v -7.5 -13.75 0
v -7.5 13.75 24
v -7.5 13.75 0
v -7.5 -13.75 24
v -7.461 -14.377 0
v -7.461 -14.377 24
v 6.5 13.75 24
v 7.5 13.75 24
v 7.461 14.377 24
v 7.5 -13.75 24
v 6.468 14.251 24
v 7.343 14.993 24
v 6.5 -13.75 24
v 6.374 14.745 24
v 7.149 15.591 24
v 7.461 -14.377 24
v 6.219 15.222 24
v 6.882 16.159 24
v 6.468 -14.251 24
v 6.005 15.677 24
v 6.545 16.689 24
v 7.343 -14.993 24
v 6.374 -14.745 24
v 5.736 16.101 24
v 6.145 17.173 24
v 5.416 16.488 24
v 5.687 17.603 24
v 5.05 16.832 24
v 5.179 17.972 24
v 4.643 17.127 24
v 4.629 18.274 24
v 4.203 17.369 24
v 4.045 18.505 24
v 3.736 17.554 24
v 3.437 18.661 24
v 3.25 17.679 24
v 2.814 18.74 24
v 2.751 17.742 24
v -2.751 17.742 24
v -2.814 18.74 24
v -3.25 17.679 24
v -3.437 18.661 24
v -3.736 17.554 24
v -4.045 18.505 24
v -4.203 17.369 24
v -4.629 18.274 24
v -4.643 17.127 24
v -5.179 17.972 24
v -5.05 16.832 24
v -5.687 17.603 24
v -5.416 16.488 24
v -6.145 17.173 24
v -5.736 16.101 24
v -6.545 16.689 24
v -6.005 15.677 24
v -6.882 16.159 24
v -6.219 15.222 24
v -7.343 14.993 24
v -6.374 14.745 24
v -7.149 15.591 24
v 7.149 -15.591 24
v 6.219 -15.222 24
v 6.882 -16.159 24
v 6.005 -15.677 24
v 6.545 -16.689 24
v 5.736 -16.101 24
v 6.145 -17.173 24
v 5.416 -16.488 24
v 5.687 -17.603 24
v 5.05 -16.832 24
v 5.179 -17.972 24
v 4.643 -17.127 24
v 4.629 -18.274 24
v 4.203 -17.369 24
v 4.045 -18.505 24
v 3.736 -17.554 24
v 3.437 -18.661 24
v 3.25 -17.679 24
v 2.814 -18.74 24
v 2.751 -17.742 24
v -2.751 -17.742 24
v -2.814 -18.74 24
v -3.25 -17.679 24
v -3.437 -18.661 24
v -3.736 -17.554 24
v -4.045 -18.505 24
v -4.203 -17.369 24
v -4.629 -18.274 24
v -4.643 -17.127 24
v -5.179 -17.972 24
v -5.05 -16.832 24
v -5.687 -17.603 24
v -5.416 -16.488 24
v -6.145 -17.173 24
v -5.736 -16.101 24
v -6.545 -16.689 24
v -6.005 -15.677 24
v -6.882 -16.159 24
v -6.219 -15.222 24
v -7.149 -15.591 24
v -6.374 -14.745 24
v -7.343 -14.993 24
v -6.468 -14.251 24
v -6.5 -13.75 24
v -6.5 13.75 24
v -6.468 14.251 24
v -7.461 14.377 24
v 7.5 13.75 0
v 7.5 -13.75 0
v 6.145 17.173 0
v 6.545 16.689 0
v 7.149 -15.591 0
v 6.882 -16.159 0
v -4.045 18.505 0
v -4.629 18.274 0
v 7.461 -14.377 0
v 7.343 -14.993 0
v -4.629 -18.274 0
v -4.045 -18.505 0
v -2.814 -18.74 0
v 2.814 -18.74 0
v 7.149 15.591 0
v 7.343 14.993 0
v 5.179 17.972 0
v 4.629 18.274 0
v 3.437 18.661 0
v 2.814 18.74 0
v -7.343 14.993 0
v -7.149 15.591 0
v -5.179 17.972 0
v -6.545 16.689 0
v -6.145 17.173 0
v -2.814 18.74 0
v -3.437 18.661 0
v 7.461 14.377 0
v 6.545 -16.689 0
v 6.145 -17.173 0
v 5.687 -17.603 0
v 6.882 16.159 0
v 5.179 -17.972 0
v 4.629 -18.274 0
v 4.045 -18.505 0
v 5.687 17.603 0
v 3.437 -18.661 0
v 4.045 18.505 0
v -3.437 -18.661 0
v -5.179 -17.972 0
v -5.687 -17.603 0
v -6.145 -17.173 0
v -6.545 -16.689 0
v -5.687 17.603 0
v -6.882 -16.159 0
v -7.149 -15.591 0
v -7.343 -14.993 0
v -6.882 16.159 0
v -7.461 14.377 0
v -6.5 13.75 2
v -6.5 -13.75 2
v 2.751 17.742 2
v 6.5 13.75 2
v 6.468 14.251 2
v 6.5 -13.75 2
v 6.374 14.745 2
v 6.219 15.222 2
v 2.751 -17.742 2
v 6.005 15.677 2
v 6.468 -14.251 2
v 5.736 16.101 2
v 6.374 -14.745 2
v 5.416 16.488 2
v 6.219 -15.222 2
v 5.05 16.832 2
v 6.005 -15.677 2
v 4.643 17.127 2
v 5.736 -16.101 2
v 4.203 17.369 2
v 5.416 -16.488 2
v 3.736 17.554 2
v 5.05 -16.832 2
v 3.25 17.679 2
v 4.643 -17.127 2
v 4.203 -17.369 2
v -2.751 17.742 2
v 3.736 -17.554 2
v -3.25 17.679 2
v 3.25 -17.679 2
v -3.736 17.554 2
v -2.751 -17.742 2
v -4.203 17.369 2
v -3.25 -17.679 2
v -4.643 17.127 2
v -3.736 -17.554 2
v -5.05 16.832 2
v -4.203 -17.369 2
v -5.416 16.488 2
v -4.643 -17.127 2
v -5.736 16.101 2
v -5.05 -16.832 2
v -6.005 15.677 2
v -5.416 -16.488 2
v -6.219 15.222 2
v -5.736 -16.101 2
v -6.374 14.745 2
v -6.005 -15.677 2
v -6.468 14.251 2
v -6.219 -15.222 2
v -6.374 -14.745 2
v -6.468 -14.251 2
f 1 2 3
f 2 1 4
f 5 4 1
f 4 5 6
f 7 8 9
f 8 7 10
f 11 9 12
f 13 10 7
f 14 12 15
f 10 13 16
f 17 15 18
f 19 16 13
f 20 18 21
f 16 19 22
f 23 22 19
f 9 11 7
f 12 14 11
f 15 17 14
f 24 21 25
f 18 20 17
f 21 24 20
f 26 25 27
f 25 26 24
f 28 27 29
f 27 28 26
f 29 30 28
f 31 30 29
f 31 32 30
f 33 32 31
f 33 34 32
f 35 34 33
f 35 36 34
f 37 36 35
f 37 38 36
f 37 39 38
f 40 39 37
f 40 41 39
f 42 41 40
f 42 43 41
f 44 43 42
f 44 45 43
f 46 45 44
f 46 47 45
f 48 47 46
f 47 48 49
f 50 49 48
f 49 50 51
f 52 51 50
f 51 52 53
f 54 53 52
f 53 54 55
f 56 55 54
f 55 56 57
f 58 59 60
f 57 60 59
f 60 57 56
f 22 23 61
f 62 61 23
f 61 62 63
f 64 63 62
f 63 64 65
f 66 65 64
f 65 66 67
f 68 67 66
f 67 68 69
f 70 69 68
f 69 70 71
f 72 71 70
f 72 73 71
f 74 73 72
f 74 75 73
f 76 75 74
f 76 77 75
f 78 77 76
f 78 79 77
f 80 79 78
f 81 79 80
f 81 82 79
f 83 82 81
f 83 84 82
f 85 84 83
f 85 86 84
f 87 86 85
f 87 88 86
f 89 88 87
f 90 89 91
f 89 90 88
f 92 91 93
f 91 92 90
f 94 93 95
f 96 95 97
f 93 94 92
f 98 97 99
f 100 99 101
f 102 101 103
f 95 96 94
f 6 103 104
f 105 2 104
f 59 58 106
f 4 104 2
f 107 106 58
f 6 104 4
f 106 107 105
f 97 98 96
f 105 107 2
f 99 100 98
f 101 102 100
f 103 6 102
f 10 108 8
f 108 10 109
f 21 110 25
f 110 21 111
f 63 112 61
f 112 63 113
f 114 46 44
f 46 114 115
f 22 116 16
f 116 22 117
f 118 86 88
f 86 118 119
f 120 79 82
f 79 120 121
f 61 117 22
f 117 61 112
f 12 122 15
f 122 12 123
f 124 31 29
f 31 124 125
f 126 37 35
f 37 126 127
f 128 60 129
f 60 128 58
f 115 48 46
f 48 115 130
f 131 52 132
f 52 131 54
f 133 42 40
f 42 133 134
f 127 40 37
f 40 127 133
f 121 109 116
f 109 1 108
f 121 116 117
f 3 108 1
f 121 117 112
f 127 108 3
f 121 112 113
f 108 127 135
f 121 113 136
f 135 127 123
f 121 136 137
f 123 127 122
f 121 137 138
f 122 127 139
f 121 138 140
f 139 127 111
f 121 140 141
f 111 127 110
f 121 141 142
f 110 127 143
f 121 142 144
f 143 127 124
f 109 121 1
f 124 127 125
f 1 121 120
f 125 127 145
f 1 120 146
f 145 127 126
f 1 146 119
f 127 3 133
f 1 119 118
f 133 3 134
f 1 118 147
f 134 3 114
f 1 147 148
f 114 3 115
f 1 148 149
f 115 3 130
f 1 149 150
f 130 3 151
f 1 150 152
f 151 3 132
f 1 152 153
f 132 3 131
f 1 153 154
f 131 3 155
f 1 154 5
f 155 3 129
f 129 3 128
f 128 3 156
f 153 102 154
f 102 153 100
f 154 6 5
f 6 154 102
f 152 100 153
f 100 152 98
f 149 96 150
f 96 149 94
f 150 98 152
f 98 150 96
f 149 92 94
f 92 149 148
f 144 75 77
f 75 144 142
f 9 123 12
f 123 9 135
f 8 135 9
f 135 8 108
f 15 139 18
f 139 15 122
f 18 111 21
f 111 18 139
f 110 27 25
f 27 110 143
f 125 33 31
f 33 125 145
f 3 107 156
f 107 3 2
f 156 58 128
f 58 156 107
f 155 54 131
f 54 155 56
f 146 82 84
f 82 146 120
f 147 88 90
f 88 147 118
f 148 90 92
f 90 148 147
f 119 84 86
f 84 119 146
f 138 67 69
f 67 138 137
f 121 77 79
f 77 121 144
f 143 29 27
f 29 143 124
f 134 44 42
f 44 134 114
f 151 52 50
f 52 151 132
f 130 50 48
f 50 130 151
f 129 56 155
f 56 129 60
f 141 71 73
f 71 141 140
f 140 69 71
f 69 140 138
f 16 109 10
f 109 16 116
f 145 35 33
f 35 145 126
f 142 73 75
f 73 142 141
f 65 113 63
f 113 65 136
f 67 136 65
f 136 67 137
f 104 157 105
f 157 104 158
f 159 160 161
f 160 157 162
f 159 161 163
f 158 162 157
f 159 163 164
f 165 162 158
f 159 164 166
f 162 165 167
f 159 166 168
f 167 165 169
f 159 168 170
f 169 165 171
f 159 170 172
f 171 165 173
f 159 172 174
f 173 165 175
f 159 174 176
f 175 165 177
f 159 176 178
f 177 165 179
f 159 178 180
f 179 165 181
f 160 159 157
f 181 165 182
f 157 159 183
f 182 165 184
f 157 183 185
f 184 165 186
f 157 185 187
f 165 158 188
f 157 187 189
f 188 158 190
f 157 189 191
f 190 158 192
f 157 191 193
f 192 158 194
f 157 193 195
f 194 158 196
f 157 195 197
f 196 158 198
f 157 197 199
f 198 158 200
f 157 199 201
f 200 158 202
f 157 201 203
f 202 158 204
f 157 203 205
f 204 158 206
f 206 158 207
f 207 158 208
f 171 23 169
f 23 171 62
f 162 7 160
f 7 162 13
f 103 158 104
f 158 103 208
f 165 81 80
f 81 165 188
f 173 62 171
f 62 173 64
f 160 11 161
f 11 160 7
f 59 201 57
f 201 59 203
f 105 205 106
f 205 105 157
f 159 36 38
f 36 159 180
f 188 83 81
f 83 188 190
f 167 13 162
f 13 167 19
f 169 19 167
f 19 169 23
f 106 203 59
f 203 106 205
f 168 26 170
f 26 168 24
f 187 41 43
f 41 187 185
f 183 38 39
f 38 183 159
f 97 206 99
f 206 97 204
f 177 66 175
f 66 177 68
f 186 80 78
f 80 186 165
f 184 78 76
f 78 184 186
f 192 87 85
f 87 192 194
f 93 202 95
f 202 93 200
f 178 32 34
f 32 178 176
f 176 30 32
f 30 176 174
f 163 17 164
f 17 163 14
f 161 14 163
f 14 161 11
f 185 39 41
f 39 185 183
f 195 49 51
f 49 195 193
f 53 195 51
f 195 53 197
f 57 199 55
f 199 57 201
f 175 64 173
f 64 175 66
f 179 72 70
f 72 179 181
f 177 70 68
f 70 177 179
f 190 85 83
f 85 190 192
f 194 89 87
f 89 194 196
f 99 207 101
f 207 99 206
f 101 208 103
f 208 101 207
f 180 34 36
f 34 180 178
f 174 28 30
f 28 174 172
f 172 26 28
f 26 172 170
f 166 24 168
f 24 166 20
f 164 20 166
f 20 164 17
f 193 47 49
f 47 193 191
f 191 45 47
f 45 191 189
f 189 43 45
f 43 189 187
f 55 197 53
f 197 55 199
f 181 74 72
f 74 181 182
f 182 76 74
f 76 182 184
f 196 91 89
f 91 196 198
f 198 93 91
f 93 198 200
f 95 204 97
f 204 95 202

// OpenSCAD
$fn = 50;


difference() {
	union() {
		hull() {
			translate(v = [-2.5000000000, 13.7500000000, 0]) {
				cylinder(h = 24, r = 5);
			}
			translate(v = [2.5000000000, 13.7500000000, 0]) {
				cylinder(h = 24, r = 5);
			}
			translate(v = [-2.5000000000, -13.7500000000, 0]) {
				cylinder(h = 24, r = 5);
			}
			translate(v = [2.5000000000, -13.7500000000, 0]) {
				cylinder(h = 24, r = 5);
			}
		}
	}
	union() {
		translate(v = [0, 0, 2]) {
			hull() {
				translate(v = [-2.5000000000, 13.7500000000, 0]) {
					cylinder(h = 22, r = 4);
				}
				translate(v = [2.5000000000, 13.7500000000, 0]) {
					cylinder(h = 22, r = 4);
				}
				translate(v = [-2.5000000000, -13.7500000000, 0]) {
					cylinder(h = 22, r = 4);
				}
				translate(v = [2.5000000000, -13.7500000000, 0]) {
					cylinder(h = 22, r = 4);
				}
			}
		}
	}
}
